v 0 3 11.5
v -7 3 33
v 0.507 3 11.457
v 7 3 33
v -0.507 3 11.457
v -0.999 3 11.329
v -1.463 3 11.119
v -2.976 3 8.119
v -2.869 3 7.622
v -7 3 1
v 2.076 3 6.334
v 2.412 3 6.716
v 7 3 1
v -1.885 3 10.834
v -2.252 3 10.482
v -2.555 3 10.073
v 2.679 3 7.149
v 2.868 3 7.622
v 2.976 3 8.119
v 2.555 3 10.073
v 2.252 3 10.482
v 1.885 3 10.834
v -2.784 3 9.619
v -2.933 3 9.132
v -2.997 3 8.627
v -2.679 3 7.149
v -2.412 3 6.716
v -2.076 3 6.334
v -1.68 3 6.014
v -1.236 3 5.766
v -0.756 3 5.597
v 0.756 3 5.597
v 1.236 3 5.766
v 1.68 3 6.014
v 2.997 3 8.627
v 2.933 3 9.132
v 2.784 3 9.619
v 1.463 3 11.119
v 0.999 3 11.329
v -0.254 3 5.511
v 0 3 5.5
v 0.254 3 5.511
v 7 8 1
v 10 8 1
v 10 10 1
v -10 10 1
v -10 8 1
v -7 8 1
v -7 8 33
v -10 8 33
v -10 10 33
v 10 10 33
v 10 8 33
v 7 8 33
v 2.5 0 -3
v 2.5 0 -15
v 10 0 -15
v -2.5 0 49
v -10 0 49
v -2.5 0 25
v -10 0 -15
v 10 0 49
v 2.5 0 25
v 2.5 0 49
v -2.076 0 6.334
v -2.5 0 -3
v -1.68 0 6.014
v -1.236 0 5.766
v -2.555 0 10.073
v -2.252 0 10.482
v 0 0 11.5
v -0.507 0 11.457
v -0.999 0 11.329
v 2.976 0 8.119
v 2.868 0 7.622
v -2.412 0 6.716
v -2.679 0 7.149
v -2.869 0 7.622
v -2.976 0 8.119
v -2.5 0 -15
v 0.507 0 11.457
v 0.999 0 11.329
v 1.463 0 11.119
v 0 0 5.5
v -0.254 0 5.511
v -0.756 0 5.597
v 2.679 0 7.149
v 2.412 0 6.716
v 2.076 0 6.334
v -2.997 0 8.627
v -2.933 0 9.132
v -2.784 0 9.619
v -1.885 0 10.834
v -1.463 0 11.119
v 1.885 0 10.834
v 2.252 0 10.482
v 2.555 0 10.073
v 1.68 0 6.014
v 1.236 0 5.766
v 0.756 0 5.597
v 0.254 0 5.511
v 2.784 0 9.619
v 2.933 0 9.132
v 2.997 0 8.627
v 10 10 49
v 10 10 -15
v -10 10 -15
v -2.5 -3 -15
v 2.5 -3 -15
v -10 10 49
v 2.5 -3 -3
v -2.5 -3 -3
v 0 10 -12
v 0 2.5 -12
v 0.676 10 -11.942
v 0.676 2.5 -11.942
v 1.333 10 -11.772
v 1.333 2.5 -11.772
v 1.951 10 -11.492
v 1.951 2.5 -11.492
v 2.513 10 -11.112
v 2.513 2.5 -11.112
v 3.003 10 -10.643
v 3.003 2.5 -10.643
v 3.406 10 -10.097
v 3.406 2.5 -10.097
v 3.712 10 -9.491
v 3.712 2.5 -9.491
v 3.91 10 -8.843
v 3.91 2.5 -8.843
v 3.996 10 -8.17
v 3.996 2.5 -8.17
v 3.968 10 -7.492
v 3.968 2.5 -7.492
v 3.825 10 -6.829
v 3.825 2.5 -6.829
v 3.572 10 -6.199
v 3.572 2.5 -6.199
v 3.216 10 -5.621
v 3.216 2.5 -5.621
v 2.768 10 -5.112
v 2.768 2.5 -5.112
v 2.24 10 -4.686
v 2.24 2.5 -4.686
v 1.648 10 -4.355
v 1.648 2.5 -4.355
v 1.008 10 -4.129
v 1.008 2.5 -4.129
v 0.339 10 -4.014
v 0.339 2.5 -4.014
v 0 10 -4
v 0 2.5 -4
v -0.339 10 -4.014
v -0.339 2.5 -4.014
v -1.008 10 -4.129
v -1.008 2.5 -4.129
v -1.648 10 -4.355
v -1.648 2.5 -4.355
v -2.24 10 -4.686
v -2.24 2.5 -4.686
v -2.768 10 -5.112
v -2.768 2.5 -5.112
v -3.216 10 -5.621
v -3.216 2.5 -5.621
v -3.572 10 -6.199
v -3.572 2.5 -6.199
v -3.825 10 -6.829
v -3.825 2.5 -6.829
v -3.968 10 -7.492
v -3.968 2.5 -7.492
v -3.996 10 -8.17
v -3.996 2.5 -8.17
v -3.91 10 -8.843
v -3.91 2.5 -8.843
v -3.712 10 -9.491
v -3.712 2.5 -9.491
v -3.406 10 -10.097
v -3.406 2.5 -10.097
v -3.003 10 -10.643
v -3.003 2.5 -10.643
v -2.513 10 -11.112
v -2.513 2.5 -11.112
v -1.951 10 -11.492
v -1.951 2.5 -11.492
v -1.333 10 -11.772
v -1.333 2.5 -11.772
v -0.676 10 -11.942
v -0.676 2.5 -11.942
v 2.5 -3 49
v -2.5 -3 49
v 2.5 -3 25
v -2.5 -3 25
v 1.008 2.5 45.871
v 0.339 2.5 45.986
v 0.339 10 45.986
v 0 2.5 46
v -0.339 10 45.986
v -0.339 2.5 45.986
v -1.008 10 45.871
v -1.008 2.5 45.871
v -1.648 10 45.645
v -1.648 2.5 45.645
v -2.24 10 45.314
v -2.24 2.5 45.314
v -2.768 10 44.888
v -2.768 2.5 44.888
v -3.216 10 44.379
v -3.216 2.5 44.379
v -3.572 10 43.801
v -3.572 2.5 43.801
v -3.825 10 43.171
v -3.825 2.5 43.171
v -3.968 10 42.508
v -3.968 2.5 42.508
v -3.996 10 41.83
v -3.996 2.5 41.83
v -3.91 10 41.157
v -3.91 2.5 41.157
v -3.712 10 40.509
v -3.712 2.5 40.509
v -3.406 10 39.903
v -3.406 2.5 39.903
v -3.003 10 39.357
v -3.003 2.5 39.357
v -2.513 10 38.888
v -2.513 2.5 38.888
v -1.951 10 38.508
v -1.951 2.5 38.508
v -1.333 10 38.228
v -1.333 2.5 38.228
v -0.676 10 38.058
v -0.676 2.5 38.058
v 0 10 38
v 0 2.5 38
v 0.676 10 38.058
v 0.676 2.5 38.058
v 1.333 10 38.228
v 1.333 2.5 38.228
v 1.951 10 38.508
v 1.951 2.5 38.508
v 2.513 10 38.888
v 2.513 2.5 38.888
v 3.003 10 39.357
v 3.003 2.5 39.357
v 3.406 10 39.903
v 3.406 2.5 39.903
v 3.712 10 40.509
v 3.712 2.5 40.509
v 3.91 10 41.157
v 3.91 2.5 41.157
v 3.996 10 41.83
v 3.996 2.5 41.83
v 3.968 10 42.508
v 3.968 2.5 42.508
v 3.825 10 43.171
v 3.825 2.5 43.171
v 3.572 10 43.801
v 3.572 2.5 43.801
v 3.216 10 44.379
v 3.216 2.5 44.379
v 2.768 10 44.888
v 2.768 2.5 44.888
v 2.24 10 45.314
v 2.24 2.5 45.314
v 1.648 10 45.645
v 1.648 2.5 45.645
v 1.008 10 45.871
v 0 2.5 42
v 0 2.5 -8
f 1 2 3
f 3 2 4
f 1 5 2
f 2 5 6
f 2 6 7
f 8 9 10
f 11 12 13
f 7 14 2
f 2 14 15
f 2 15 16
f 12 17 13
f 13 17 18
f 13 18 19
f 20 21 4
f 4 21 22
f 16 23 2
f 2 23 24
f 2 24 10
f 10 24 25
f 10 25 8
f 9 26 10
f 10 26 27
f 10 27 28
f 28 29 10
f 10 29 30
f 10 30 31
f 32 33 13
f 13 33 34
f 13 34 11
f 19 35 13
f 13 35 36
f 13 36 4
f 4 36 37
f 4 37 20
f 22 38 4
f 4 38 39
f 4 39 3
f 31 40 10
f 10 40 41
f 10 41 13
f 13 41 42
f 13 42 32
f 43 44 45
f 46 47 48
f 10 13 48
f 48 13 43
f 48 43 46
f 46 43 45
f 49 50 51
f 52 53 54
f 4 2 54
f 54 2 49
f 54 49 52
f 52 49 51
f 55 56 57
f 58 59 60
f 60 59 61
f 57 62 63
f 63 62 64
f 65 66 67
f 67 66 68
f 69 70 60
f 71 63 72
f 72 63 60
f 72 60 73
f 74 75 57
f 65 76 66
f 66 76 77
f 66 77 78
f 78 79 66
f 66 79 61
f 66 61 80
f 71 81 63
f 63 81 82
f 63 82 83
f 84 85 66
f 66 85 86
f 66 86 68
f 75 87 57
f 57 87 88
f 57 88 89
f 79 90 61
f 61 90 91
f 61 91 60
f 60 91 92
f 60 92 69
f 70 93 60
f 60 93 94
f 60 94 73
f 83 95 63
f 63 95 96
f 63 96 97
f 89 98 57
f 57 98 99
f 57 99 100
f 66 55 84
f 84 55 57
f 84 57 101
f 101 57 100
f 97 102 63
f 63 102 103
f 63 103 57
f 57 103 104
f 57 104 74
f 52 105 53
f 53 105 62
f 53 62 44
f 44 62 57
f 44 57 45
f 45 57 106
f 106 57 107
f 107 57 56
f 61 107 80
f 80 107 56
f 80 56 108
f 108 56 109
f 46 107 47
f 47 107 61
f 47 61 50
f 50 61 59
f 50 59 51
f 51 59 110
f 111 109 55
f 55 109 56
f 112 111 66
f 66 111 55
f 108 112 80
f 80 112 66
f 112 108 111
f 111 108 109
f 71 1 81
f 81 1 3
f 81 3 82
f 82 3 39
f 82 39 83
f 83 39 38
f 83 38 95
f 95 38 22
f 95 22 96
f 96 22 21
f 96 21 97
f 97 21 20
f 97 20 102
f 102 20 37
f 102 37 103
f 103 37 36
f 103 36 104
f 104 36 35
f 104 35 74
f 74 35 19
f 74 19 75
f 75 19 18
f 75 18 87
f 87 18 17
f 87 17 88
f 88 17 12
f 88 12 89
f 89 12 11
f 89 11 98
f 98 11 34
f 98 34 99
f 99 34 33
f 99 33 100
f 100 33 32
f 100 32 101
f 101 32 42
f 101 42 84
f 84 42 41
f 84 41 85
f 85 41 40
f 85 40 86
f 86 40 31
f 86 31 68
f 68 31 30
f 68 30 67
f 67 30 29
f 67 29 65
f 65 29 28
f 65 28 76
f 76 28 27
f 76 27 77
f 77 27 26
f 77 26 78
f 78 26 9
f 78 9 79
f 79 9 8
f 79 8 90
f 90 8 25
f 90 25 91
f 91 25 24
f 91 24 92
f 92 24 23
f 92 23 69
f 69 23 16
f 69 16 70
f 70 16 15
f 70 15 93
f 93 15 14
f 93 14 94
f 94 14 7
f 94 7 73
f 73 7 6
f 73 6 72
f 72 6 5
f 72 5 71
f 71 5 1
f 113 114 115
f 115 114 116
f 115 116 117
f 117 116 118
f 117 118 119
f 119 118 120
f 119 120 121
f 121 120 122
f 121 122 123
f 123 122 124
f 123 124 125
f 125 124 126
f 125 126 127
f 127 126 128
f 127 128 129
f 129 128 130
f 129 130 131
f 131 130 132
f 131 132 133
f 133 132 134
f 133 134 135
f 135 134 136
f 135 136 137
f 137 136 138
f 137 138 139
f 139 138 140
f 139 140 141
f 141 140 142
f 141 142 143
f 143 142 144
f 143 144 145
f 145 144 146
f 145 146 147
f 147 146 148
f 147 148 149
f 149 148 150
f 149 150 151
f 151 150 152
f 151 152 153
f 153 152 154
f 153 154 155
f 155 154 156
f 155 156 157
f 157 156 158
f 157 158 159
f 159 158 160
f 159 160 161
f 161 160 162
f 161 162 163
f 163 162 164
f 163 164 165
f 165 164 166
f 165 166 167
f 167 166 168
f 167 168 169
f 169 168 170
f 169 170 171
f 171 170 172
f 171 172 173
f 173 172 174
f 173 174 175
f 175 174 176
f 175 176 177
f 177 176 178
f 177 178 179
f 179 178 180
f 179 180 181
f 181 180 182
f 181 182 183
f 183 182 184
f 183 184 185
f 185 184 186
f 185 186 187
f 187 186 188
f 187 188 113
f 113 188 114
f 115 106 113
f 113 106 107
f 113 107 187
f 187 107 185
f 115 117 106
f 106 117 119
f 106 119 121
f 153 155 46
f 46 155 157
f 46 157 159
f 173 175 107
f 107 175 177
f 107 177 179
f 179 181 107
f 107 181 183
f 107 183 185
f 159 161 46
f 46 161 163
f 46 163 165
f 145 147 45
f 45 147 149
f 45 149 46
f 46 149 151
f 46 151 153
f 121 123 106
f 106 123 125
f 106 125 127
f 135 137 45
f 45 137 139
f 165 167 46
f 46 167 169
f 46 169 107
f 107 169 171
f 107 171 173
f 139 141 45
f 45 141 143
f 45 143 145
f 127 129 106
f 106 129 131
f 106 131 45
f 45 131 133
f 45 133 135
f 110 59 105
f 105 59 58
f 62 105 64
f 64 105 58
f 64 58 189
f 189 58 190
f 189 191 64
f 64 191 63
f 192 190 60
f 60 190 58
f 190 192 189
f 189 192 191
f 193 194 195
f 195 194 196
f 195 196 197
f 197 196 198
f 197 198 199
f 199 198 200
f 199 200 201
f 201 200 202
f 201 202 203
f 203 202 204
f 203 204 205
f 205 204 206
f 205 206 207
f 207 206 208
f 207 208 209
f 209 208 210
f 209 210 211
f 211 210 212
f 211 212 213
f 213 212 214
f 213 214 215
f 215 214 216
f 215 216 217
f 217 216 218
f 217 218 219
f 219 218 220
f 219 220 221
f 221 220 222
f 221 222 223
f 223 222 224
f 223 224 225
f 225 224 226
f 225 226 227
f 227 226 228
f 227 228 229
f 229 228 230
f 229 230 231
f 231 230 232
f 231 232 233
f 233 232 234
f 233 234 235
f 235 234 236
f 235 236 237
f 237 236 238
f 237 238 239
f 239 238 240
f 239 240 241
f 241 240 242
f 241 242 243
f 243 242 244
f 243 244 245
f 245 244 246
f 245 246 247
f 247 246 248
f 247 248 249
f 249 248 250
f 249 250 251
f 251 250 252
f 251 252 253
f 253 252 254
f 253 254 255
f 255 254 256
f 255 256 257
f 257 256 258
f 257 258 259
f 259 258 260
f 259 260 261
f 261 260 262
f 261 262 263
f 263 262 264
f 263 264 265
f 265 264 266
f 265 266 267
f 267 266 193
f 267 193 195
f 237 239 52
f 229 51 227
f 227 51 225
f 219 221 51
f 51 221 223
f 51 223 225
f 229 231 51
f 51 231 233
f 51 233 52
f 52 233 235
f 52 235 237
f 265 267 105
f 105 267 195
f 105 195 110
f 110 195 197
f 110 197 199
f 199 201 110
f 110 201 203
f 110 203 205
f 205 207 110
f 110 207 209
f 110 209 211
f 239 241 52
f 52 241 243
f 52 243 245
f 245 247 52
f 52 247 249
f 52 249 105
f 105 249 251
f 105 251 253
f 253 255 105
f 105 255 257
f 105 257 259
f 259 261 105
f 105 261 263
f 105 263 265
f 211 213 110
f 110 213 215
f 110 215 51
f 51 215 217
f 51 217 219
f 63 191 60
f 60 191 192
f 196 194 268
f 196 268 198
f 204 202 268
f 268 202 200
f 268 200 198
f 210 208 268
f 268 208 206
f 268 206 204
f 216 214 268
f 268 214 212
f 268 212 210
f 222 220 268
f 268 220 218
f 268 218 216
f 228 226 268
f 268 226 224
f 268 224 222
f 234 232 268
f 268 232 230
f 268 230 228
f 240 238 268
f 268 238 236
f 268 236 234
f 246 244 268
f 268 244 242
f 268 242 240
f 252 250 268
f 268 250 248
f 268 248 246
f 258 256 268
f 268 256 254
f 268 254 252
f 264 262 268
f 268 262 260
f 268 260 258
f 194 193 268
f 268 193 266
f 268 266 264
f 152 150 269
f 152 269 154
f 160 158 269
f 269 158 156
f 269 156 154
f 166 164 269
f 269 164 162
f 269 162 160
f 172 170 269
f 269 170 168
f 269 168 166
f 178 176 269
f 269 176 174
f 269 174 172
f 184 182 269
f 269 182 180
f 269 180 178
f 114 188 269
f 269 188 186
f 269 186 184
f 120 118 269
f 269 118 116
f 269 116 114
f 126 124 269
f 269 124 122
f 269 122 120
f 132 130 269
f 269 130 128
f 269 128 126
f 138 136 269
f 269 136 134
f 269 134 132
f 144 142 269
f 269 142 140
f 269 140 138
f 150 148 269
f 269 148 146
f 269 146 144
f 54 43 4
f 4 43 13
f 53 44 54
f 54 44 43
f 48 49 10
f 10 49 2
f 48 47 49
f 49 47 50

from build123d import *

# Parameters (mm, degrees)
SKETCH1_W               = 20
SKETCH1_H               = 30
BOSS_EXTRUDE1_DEPTH     = 3
SKETCH2_W               = 5
SKETCH2_H               = 12
BOSS_EXTRUDE2_DEPTH     = 3
SKETCH3_R               = 7
SKETCH3_R_2             = 4
BOSS_EXTRUDE3_DEPTH     = 7
SKETCH4_R               = 4
BOSS_EXTRUDE4_DEPTH     = 1
CUT_EXTRUDE1_DEPTH      = 20.339079606
CUT_EXTRUDE1_DEPTH_BACK = 20.339079606
SKETCH5_R               = 3
SKETCH6_R               = 7
SKETCH6_R_2             = 4
BOSS_EXTRUDE6_DEPTH     = 7
SKETCH7_W               = 20
SKETCH7_H               = 3
BOSS_EXTRUDE7_DEPTH     = 19
SKETCH8_W               = 5
SKETCH8_H               = 3
BOSS_EXTRUDE8_DEPTH     = 12
CUT_EXTRUDE2_START      = -1.5
SKETCH10_R              = 4
CUT_EXTRUDE2_DEPTH      = 1.5
SKETCH12_W              = 3
SKETCH12_H              = 32
BOSS_EXTRUDE9_DEPTH     = 5


with BuildPart() as part:
    # Sketch1 → Boss-Extrude1 (new body)
    with BuildSketch(Plane(origin=(0, 0, 0), x_dir=(1, 0, 0), z_dir=(0, 1, 0))):
        Rectangle(SKETCH1_W, SKETCH1_H)
    boss_extrude1 = extrude(amount=BOSS_EXTRUDE1_DEPTH)

    # Sketch2 → Boss-Extrude2 (add)
    with BuildSketch(Plane.XZ):
        with Locations((0, -9)):
            Rectangle(SKETCH2_W, SKETCH2_H)
    boss_extrude2 = extrude(amount=BOSS_EXTRUDE2_DEPTH)

    # Sketch3 → Boss-Extrude3 (add)
    with BuildSketch(Plane(origin=(0, 3, 0), x_dir=(1, 0, 0), z_dir=(0, 1, 0))):
        with Locations(Location((0, 8, 0), (0, 0, 90))):
            Circle(SKETCH3_R)
        with Locations(Location((0, 8, 0), (0, 0, 270))):
            Circle(SKETCH3_R_2, mode=Mode.SUBTRACT)
    boss_extrude3 = extrude(amount=BOSS_EXTRUDE3_DEPTH)

    # Sketch4 → Boss-Extrude4 (add)
    with BuildSketch(Plane(origin=(0, 3, 0), x_dir=(1, 0, 0), z_dir=(0, 1, 0))):
        with Locations(Location((0, 8, 0), (0, 0, 270))):
            Circle(SKETCH4_R)
    boss_extrude4 = extrude(amount=BOSS_EXTRUDE4_DEPTH)

    # Sketch5 → Cut-Extrude1 (cut, two sides: drawn at the far end of the back side and taken through both)
    with BuildSketch(Plane(origin=(0, 3, 0), x_dir=(1, 0, 0), z_dir=(0, 1, 0)).offset(-CUT_EXTRUDE1_DEPTH_BACK)):
        with Locations(Location((0, -8.5, 0), (0, 0, 90))):
            Circle(SKETCH5_R)
    extrude(amount=CUT_EXTRUDE1_DEPTH + CUT_EXTRUDE1_DEPTH_BACK, mode=Mode.SUBTRACT)

    # Sketch6 → Boss-Extrude6 (add)
    # profile 1 of 2: a face of its own
    with BuildSketch(Plane(origin=(0, 3, 0), x_dir=(1, 0, 0), z_dir=(0, 1, 0))):
        Polygon((0, 15), (-10, 15), (-10, -1), (10, -1), (10, 15), align=None)
        with BuildLine():
            ThreePointArc((7, 8), (-4.949747468, 3.050252532), (0, 15))
            ThreePointArc((0, 15), (4.949747468, 12.949747468), (7, 8))
        make_face(mode=Mode.SUBTRACT)
    # profile 2 of 2: a face of its own
    with BuildSketch(Plane(origin=(0, 3, 0), x_dir=(1, 0, 0), z_dir=(0, 1, 0))):
        with Locations((0, 8)):
            Circle(SKETCH6_R)
        with Locations(Location((0, 8, 0), (0, 0, 270))):
            Circle(SKETCH6_R_2, mode=Mode.SUBTRACT)
    boss_extrude6 = extrude(amount=BOSS_EXTRUDE6_DEPTH)

    # Sketch7 → Boss-Extrude7 (add)
    with BuildSketch(Plane.XY.offset(15)):
        with Locations((0, 1.5)):
            Rectangle(SKETCH7_W, SKETCH7_H)
    extrude(amount=BOSS_EXTRUDE7_DEPTH)

    # Mirror3: Boss-Extrude1, Boss-Extrude2, Boss-Extrude3, Boss-Extrude4, Boss-Extrude6 across plane
    add(boss_extrude1.mirror(Plane.XY.offset(17)))
    add(boss_extrude2.mirror(Plane.XY.offset(17)))
    add(boss_extrude3.mirror(Plane.XY.offset(17)))
    add(boss_extrude4.mirror(Plane.XY.offset(17)))
    add(boss_extrude6.mirror(Plane.XY.offset(17)))

    # Sketch8 → Boss-Extrude8 (add)
    with BuildSketch(Plane(origin=(0, 0, 37), x_dir=(-1, 0, 0), z_dir=(0, 0, -1))):
        with Locations((0, -1.5)):
            Rectangle(SKETCH8_W, SKETCH8_H)
    extrude(amount=BOSS_EXTRUDE8_DEPTH)

    # Sketch10 → Cut-Extrude2 (cut)
    with BuildSketch(Plane(origin=(0, 4, 0), x_dir=(1, 0, 0), z_dir=(0, 1, 0)).offset(CUT_EXTRUDE2_START)):
        with Locations(Location((0, 8, 0), (0, 0, 270))):
            Circle(SKETCH10_R)
        with Locations(Location((0, -42, 0), (0, 0, 90))):
            Circle(SKETCH10_R)
    extrude(amount=CUT_EXTRUDE2_DEPTH, mode=Mode.SUBTRACT)

    # Sketch12 → Boss-Extrude9 (add)
    with BuildSketch(Plane(origin=(0, 3, 0), x_dir=(1, 0, 0), z_dir=(0, 1, 0))):
        with Locations((8.5, -17)):
            Rectangle(SKETCH12_W, SKETCH12_H)
        with Locations((-8.5, -17)):
            Rectangle(SKETCH12_W, SKETCH12_H)
    extrude(amount=BOSS_EXTRUDE9_DEPTH)


solid = part.part
